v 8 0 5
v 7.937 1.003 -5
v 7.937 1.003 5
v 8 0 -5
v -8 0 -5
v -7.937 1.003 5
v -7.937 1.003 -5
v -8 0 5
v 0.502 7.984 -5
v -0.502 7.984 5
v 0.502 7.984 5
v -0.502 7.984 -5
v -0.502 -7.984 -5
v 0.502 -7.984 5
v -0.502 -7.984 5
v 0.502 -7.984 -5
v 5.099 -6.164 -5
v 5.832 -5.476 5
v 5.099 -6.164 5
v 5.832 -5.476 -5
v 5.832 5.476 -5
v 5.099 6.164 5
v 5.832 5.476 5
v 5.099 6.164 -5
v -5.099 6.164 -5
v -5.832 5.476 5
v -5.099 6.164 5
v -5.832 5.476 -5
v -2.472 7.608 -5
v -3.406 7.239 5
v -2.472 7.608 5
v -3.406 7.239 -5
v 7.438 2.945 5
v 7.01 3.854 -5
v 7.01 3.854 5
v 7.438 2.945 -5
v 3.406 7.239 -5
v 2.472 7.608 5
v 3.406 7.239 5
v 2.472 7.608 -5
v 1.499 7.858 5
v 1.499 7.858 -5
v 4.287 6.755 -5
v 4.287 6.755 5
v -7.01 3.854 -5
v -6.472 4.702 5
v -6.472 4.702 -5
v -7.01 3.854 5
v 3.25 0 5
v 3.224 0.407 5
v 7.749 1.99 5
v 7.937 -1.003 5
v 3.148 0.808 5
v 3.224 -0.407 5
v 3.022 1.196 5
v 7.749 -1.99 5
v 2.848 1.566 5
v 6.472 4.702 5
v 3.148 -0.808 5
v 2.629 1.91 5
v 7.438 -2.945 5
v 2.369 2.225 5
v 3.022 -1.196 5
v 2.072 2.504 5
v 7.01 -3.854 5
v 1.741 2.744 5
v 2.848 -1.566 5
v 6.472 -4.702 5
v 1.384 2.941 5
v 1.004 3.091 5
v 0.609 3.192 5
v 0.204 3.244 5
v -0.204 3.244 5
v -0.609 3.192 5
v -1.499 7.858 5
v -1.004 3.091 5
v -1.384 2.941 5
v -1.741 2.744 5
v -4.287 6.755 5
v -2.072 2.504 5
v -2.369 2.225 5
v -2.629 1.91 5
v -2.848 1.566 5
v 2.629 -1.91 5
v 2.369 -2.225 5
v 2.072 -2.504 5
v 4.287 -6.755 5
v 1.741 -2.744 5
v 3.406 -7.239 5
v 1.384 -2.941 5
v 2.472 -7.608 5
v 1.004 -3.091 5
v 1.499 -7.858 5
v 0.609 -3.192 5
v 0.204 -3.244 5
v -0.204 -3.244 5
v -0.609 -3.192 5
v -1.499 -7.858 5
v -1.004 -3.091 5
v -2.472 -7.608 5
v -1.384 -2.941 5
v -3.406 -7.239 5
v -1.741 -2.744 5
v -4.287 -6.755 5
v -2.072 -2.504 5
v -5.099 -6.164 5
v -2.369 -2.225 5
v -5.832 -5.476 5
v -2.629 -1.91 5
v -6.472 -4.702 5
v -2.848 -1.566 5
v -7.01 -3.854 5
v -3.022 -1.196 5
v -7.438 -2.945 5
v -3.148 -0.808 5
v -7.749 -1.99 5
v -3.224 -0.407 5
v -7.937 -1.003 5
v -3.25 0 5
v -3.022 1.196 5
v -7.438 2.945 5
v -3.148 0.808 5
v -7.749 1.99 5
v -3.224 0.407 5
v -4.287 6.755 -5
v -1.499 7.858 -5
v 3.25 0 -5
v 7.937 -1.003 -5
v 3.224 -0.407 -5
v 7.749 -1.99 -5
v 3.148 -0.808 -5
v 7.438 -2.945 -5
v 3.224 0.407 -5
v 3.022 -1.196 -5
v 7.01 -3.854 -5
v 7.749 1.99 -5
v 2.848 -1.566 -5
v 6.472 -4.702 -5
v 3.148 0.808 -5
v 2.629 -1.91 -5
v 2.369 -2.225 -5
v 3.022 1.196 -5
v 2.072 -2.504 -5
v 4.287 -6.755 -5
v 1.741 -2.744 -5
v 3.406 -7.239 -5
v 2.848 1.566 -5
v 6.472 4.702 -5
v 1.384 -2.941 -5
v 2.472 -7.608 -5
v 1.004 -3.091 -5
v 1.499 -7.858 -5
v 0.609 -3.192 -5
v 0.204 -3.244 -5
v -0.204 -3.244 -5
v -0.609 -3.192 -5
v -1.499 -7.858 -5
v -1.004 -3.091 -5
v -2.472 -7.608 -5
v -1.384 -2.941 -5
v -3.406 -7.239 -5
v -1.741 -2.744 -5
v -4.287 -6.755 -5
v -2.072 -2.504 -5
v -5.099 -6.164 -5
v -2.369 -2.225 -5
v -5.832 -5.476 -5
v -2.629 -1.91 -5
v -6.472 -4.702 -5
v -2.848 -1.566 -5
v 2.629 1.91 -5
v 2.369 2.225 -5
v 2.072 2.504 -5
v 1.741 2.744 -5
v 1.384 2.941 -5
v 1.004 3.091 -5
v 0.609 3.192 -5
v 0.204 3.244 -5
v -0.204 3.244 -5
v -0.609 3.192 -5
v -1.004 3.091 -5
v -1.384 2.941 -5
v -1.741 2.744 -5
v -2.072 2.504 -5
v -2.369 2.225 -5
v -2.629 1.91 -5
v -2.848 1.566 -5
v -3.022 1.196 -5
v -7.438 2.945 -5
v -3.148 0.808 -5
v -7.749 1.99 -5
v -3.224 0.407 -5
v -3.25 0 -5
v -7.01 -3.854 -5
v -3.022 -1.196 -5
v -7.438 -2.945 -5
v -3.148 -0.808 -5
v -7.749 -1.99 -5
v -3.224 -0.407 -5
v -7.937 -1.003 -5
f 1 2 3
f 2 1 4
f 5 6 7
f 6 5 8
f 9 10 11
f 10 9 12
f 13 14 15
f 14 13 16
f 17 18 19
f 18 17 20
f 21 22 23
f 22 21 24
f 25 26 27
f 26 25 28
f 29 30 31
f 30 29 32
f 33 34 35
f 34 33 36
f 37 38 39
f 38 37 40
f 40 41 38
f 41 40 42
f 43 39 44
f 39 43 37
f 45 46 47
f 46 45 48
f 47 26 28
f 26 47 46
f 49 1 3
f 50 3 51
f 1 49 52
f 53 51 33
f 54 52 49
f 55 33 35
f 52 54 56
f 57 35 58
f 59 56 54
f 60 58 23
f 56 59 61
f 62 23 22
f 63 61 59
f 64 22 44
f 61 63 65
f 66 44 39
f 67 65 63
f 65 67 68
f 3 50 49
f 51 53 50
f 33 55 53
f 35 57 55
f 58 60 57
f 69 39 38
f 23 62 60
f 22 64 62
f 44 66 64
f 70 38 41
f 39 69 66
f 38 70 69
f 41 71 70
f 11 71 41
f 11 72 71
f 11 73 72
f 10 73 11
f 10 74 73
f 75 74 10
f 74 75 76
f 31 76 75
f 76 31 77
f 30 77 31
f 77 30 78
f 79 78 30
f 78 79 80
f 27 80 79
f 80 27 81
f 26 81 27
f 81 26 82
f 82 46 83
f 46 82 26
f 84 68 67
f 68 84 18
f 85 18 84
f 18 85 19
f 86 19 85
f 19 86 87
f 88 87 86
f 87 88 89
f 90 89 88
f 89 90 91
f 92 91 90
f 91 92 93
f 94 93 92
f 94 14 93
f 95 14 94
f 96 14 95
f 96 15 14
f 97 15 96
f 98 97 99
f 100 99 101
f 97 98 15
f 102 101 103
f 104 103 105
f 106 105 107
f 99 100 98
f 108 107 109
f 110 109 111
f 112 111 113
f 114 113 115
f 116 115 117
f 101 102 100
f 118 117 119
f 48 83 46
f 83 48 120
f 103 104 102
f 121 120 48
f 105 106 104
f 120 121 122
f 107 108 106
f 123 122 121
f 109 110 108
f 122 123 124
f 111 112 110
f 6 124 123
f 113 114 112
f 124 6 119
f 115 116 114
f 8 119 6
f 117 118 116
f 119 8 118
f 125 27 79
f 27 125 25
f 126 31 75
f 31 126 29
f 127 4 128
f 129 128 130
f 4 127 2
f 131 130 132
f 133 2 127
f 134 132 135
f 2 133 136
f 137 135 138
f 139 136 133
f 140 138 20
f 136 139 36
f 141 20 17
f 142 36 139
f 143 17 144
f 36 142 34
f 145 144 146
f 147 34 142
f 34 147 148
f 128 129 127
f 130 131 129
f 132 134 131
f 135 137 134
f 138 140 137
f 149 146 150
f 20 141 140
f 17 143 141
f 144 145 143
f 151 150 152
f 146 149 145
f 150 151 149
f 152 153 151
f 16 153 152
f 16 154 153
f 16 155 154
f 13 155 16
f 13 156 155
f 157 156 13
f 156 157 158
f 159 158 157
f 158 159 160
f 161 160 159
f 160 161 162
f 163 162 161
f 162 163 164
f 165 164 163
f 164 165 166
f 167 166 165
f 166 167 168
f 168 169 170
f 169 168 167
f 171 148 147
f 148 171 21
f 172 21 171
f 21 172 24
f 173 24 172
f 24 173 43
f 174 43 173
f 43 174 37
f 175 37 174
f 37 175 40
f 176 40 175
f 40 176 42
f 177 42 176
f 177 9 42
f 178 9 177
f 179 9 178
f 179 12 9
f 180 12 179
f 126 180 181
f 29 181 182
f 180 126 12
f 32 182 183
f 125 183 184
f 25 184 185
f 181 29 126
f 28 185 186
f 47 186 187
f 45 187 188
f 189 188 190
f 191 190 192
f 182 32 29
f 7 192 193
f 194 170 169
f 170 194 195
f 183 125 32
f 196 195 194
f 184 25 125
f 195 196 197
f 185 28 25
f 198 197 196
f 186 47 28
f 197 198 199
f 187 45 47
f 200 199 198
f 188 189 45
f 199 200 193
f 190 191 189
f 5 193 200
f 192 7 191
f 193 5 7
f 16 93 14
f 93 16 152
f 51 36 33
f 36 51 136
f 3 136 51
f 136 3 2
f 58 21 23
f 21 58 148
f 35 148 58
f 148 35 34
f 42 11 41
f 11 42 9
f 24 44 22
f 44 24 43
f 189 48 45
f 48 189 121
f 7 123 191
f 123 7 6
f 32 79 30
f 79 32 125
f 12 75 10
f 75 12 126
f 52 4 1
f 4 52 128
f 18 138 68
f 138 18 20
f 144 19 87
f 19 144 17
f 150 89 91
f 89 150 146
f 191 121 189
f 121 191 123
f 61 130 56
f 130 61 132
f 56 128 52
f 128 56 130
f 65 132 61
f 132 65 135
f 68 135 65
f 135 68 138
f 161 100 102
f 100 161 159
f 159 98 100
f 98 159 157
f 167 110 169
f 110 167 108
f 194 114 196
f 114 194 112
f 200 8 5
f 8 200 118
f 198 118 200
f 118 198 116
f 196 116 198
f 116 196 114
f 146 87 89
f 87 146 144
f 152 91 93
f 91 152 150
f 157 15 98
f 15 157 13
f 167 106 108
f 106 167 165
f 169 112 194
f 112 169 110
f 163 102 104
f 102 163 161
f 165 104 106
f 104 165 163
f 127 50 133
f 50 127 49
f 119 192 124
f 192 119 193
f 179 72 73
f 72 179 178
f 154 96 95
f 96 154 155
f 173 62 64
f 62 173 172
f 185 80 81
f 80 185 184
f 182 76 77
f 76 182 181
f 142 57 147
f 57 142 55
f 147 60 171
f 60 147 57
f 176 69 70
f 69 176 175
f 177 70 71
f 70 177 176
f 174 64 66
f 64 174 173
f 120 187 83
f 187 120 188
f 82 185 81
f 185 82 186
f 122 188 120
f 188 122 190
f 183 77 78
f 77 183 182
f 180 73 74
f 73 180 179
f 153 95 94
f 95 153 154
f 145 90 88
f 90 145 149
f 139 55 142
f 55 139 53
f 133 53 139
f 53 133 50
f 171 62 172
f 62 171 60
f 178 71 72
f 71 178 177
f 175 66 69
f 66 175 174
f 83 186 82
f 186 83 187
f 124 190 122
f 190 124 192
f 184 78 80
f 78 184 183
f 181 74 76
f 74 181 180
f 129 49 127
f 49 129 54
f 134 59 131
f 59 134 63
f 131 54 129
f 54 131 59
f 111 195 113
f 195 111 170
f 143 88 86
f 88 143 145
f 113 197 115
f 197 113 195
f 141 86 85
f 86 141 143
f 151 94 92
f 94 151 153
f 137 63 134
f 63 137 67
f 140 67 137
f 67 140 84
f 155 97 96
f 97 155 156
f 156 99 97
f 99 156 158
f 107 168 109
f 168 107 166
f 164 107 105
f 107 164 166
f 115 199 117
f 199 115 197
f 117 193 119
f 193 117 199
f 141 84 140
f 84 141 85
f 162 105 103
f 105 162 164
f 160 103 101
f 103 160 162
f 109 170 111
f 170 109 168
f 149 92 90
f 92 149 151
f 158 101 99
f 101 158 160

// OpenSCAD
$fn = 50;


difference() {
	union() {
		translate(v = [0, 0, -5.0000000000]) {
			cylinder(h = 10, r = 8.0000000000);
		}
	}
	union() {
		translate(v = [0, 0, -100.0000000000]) {
			cylinder(h = 200, r = 3.2500000000);
		}
	}
}
